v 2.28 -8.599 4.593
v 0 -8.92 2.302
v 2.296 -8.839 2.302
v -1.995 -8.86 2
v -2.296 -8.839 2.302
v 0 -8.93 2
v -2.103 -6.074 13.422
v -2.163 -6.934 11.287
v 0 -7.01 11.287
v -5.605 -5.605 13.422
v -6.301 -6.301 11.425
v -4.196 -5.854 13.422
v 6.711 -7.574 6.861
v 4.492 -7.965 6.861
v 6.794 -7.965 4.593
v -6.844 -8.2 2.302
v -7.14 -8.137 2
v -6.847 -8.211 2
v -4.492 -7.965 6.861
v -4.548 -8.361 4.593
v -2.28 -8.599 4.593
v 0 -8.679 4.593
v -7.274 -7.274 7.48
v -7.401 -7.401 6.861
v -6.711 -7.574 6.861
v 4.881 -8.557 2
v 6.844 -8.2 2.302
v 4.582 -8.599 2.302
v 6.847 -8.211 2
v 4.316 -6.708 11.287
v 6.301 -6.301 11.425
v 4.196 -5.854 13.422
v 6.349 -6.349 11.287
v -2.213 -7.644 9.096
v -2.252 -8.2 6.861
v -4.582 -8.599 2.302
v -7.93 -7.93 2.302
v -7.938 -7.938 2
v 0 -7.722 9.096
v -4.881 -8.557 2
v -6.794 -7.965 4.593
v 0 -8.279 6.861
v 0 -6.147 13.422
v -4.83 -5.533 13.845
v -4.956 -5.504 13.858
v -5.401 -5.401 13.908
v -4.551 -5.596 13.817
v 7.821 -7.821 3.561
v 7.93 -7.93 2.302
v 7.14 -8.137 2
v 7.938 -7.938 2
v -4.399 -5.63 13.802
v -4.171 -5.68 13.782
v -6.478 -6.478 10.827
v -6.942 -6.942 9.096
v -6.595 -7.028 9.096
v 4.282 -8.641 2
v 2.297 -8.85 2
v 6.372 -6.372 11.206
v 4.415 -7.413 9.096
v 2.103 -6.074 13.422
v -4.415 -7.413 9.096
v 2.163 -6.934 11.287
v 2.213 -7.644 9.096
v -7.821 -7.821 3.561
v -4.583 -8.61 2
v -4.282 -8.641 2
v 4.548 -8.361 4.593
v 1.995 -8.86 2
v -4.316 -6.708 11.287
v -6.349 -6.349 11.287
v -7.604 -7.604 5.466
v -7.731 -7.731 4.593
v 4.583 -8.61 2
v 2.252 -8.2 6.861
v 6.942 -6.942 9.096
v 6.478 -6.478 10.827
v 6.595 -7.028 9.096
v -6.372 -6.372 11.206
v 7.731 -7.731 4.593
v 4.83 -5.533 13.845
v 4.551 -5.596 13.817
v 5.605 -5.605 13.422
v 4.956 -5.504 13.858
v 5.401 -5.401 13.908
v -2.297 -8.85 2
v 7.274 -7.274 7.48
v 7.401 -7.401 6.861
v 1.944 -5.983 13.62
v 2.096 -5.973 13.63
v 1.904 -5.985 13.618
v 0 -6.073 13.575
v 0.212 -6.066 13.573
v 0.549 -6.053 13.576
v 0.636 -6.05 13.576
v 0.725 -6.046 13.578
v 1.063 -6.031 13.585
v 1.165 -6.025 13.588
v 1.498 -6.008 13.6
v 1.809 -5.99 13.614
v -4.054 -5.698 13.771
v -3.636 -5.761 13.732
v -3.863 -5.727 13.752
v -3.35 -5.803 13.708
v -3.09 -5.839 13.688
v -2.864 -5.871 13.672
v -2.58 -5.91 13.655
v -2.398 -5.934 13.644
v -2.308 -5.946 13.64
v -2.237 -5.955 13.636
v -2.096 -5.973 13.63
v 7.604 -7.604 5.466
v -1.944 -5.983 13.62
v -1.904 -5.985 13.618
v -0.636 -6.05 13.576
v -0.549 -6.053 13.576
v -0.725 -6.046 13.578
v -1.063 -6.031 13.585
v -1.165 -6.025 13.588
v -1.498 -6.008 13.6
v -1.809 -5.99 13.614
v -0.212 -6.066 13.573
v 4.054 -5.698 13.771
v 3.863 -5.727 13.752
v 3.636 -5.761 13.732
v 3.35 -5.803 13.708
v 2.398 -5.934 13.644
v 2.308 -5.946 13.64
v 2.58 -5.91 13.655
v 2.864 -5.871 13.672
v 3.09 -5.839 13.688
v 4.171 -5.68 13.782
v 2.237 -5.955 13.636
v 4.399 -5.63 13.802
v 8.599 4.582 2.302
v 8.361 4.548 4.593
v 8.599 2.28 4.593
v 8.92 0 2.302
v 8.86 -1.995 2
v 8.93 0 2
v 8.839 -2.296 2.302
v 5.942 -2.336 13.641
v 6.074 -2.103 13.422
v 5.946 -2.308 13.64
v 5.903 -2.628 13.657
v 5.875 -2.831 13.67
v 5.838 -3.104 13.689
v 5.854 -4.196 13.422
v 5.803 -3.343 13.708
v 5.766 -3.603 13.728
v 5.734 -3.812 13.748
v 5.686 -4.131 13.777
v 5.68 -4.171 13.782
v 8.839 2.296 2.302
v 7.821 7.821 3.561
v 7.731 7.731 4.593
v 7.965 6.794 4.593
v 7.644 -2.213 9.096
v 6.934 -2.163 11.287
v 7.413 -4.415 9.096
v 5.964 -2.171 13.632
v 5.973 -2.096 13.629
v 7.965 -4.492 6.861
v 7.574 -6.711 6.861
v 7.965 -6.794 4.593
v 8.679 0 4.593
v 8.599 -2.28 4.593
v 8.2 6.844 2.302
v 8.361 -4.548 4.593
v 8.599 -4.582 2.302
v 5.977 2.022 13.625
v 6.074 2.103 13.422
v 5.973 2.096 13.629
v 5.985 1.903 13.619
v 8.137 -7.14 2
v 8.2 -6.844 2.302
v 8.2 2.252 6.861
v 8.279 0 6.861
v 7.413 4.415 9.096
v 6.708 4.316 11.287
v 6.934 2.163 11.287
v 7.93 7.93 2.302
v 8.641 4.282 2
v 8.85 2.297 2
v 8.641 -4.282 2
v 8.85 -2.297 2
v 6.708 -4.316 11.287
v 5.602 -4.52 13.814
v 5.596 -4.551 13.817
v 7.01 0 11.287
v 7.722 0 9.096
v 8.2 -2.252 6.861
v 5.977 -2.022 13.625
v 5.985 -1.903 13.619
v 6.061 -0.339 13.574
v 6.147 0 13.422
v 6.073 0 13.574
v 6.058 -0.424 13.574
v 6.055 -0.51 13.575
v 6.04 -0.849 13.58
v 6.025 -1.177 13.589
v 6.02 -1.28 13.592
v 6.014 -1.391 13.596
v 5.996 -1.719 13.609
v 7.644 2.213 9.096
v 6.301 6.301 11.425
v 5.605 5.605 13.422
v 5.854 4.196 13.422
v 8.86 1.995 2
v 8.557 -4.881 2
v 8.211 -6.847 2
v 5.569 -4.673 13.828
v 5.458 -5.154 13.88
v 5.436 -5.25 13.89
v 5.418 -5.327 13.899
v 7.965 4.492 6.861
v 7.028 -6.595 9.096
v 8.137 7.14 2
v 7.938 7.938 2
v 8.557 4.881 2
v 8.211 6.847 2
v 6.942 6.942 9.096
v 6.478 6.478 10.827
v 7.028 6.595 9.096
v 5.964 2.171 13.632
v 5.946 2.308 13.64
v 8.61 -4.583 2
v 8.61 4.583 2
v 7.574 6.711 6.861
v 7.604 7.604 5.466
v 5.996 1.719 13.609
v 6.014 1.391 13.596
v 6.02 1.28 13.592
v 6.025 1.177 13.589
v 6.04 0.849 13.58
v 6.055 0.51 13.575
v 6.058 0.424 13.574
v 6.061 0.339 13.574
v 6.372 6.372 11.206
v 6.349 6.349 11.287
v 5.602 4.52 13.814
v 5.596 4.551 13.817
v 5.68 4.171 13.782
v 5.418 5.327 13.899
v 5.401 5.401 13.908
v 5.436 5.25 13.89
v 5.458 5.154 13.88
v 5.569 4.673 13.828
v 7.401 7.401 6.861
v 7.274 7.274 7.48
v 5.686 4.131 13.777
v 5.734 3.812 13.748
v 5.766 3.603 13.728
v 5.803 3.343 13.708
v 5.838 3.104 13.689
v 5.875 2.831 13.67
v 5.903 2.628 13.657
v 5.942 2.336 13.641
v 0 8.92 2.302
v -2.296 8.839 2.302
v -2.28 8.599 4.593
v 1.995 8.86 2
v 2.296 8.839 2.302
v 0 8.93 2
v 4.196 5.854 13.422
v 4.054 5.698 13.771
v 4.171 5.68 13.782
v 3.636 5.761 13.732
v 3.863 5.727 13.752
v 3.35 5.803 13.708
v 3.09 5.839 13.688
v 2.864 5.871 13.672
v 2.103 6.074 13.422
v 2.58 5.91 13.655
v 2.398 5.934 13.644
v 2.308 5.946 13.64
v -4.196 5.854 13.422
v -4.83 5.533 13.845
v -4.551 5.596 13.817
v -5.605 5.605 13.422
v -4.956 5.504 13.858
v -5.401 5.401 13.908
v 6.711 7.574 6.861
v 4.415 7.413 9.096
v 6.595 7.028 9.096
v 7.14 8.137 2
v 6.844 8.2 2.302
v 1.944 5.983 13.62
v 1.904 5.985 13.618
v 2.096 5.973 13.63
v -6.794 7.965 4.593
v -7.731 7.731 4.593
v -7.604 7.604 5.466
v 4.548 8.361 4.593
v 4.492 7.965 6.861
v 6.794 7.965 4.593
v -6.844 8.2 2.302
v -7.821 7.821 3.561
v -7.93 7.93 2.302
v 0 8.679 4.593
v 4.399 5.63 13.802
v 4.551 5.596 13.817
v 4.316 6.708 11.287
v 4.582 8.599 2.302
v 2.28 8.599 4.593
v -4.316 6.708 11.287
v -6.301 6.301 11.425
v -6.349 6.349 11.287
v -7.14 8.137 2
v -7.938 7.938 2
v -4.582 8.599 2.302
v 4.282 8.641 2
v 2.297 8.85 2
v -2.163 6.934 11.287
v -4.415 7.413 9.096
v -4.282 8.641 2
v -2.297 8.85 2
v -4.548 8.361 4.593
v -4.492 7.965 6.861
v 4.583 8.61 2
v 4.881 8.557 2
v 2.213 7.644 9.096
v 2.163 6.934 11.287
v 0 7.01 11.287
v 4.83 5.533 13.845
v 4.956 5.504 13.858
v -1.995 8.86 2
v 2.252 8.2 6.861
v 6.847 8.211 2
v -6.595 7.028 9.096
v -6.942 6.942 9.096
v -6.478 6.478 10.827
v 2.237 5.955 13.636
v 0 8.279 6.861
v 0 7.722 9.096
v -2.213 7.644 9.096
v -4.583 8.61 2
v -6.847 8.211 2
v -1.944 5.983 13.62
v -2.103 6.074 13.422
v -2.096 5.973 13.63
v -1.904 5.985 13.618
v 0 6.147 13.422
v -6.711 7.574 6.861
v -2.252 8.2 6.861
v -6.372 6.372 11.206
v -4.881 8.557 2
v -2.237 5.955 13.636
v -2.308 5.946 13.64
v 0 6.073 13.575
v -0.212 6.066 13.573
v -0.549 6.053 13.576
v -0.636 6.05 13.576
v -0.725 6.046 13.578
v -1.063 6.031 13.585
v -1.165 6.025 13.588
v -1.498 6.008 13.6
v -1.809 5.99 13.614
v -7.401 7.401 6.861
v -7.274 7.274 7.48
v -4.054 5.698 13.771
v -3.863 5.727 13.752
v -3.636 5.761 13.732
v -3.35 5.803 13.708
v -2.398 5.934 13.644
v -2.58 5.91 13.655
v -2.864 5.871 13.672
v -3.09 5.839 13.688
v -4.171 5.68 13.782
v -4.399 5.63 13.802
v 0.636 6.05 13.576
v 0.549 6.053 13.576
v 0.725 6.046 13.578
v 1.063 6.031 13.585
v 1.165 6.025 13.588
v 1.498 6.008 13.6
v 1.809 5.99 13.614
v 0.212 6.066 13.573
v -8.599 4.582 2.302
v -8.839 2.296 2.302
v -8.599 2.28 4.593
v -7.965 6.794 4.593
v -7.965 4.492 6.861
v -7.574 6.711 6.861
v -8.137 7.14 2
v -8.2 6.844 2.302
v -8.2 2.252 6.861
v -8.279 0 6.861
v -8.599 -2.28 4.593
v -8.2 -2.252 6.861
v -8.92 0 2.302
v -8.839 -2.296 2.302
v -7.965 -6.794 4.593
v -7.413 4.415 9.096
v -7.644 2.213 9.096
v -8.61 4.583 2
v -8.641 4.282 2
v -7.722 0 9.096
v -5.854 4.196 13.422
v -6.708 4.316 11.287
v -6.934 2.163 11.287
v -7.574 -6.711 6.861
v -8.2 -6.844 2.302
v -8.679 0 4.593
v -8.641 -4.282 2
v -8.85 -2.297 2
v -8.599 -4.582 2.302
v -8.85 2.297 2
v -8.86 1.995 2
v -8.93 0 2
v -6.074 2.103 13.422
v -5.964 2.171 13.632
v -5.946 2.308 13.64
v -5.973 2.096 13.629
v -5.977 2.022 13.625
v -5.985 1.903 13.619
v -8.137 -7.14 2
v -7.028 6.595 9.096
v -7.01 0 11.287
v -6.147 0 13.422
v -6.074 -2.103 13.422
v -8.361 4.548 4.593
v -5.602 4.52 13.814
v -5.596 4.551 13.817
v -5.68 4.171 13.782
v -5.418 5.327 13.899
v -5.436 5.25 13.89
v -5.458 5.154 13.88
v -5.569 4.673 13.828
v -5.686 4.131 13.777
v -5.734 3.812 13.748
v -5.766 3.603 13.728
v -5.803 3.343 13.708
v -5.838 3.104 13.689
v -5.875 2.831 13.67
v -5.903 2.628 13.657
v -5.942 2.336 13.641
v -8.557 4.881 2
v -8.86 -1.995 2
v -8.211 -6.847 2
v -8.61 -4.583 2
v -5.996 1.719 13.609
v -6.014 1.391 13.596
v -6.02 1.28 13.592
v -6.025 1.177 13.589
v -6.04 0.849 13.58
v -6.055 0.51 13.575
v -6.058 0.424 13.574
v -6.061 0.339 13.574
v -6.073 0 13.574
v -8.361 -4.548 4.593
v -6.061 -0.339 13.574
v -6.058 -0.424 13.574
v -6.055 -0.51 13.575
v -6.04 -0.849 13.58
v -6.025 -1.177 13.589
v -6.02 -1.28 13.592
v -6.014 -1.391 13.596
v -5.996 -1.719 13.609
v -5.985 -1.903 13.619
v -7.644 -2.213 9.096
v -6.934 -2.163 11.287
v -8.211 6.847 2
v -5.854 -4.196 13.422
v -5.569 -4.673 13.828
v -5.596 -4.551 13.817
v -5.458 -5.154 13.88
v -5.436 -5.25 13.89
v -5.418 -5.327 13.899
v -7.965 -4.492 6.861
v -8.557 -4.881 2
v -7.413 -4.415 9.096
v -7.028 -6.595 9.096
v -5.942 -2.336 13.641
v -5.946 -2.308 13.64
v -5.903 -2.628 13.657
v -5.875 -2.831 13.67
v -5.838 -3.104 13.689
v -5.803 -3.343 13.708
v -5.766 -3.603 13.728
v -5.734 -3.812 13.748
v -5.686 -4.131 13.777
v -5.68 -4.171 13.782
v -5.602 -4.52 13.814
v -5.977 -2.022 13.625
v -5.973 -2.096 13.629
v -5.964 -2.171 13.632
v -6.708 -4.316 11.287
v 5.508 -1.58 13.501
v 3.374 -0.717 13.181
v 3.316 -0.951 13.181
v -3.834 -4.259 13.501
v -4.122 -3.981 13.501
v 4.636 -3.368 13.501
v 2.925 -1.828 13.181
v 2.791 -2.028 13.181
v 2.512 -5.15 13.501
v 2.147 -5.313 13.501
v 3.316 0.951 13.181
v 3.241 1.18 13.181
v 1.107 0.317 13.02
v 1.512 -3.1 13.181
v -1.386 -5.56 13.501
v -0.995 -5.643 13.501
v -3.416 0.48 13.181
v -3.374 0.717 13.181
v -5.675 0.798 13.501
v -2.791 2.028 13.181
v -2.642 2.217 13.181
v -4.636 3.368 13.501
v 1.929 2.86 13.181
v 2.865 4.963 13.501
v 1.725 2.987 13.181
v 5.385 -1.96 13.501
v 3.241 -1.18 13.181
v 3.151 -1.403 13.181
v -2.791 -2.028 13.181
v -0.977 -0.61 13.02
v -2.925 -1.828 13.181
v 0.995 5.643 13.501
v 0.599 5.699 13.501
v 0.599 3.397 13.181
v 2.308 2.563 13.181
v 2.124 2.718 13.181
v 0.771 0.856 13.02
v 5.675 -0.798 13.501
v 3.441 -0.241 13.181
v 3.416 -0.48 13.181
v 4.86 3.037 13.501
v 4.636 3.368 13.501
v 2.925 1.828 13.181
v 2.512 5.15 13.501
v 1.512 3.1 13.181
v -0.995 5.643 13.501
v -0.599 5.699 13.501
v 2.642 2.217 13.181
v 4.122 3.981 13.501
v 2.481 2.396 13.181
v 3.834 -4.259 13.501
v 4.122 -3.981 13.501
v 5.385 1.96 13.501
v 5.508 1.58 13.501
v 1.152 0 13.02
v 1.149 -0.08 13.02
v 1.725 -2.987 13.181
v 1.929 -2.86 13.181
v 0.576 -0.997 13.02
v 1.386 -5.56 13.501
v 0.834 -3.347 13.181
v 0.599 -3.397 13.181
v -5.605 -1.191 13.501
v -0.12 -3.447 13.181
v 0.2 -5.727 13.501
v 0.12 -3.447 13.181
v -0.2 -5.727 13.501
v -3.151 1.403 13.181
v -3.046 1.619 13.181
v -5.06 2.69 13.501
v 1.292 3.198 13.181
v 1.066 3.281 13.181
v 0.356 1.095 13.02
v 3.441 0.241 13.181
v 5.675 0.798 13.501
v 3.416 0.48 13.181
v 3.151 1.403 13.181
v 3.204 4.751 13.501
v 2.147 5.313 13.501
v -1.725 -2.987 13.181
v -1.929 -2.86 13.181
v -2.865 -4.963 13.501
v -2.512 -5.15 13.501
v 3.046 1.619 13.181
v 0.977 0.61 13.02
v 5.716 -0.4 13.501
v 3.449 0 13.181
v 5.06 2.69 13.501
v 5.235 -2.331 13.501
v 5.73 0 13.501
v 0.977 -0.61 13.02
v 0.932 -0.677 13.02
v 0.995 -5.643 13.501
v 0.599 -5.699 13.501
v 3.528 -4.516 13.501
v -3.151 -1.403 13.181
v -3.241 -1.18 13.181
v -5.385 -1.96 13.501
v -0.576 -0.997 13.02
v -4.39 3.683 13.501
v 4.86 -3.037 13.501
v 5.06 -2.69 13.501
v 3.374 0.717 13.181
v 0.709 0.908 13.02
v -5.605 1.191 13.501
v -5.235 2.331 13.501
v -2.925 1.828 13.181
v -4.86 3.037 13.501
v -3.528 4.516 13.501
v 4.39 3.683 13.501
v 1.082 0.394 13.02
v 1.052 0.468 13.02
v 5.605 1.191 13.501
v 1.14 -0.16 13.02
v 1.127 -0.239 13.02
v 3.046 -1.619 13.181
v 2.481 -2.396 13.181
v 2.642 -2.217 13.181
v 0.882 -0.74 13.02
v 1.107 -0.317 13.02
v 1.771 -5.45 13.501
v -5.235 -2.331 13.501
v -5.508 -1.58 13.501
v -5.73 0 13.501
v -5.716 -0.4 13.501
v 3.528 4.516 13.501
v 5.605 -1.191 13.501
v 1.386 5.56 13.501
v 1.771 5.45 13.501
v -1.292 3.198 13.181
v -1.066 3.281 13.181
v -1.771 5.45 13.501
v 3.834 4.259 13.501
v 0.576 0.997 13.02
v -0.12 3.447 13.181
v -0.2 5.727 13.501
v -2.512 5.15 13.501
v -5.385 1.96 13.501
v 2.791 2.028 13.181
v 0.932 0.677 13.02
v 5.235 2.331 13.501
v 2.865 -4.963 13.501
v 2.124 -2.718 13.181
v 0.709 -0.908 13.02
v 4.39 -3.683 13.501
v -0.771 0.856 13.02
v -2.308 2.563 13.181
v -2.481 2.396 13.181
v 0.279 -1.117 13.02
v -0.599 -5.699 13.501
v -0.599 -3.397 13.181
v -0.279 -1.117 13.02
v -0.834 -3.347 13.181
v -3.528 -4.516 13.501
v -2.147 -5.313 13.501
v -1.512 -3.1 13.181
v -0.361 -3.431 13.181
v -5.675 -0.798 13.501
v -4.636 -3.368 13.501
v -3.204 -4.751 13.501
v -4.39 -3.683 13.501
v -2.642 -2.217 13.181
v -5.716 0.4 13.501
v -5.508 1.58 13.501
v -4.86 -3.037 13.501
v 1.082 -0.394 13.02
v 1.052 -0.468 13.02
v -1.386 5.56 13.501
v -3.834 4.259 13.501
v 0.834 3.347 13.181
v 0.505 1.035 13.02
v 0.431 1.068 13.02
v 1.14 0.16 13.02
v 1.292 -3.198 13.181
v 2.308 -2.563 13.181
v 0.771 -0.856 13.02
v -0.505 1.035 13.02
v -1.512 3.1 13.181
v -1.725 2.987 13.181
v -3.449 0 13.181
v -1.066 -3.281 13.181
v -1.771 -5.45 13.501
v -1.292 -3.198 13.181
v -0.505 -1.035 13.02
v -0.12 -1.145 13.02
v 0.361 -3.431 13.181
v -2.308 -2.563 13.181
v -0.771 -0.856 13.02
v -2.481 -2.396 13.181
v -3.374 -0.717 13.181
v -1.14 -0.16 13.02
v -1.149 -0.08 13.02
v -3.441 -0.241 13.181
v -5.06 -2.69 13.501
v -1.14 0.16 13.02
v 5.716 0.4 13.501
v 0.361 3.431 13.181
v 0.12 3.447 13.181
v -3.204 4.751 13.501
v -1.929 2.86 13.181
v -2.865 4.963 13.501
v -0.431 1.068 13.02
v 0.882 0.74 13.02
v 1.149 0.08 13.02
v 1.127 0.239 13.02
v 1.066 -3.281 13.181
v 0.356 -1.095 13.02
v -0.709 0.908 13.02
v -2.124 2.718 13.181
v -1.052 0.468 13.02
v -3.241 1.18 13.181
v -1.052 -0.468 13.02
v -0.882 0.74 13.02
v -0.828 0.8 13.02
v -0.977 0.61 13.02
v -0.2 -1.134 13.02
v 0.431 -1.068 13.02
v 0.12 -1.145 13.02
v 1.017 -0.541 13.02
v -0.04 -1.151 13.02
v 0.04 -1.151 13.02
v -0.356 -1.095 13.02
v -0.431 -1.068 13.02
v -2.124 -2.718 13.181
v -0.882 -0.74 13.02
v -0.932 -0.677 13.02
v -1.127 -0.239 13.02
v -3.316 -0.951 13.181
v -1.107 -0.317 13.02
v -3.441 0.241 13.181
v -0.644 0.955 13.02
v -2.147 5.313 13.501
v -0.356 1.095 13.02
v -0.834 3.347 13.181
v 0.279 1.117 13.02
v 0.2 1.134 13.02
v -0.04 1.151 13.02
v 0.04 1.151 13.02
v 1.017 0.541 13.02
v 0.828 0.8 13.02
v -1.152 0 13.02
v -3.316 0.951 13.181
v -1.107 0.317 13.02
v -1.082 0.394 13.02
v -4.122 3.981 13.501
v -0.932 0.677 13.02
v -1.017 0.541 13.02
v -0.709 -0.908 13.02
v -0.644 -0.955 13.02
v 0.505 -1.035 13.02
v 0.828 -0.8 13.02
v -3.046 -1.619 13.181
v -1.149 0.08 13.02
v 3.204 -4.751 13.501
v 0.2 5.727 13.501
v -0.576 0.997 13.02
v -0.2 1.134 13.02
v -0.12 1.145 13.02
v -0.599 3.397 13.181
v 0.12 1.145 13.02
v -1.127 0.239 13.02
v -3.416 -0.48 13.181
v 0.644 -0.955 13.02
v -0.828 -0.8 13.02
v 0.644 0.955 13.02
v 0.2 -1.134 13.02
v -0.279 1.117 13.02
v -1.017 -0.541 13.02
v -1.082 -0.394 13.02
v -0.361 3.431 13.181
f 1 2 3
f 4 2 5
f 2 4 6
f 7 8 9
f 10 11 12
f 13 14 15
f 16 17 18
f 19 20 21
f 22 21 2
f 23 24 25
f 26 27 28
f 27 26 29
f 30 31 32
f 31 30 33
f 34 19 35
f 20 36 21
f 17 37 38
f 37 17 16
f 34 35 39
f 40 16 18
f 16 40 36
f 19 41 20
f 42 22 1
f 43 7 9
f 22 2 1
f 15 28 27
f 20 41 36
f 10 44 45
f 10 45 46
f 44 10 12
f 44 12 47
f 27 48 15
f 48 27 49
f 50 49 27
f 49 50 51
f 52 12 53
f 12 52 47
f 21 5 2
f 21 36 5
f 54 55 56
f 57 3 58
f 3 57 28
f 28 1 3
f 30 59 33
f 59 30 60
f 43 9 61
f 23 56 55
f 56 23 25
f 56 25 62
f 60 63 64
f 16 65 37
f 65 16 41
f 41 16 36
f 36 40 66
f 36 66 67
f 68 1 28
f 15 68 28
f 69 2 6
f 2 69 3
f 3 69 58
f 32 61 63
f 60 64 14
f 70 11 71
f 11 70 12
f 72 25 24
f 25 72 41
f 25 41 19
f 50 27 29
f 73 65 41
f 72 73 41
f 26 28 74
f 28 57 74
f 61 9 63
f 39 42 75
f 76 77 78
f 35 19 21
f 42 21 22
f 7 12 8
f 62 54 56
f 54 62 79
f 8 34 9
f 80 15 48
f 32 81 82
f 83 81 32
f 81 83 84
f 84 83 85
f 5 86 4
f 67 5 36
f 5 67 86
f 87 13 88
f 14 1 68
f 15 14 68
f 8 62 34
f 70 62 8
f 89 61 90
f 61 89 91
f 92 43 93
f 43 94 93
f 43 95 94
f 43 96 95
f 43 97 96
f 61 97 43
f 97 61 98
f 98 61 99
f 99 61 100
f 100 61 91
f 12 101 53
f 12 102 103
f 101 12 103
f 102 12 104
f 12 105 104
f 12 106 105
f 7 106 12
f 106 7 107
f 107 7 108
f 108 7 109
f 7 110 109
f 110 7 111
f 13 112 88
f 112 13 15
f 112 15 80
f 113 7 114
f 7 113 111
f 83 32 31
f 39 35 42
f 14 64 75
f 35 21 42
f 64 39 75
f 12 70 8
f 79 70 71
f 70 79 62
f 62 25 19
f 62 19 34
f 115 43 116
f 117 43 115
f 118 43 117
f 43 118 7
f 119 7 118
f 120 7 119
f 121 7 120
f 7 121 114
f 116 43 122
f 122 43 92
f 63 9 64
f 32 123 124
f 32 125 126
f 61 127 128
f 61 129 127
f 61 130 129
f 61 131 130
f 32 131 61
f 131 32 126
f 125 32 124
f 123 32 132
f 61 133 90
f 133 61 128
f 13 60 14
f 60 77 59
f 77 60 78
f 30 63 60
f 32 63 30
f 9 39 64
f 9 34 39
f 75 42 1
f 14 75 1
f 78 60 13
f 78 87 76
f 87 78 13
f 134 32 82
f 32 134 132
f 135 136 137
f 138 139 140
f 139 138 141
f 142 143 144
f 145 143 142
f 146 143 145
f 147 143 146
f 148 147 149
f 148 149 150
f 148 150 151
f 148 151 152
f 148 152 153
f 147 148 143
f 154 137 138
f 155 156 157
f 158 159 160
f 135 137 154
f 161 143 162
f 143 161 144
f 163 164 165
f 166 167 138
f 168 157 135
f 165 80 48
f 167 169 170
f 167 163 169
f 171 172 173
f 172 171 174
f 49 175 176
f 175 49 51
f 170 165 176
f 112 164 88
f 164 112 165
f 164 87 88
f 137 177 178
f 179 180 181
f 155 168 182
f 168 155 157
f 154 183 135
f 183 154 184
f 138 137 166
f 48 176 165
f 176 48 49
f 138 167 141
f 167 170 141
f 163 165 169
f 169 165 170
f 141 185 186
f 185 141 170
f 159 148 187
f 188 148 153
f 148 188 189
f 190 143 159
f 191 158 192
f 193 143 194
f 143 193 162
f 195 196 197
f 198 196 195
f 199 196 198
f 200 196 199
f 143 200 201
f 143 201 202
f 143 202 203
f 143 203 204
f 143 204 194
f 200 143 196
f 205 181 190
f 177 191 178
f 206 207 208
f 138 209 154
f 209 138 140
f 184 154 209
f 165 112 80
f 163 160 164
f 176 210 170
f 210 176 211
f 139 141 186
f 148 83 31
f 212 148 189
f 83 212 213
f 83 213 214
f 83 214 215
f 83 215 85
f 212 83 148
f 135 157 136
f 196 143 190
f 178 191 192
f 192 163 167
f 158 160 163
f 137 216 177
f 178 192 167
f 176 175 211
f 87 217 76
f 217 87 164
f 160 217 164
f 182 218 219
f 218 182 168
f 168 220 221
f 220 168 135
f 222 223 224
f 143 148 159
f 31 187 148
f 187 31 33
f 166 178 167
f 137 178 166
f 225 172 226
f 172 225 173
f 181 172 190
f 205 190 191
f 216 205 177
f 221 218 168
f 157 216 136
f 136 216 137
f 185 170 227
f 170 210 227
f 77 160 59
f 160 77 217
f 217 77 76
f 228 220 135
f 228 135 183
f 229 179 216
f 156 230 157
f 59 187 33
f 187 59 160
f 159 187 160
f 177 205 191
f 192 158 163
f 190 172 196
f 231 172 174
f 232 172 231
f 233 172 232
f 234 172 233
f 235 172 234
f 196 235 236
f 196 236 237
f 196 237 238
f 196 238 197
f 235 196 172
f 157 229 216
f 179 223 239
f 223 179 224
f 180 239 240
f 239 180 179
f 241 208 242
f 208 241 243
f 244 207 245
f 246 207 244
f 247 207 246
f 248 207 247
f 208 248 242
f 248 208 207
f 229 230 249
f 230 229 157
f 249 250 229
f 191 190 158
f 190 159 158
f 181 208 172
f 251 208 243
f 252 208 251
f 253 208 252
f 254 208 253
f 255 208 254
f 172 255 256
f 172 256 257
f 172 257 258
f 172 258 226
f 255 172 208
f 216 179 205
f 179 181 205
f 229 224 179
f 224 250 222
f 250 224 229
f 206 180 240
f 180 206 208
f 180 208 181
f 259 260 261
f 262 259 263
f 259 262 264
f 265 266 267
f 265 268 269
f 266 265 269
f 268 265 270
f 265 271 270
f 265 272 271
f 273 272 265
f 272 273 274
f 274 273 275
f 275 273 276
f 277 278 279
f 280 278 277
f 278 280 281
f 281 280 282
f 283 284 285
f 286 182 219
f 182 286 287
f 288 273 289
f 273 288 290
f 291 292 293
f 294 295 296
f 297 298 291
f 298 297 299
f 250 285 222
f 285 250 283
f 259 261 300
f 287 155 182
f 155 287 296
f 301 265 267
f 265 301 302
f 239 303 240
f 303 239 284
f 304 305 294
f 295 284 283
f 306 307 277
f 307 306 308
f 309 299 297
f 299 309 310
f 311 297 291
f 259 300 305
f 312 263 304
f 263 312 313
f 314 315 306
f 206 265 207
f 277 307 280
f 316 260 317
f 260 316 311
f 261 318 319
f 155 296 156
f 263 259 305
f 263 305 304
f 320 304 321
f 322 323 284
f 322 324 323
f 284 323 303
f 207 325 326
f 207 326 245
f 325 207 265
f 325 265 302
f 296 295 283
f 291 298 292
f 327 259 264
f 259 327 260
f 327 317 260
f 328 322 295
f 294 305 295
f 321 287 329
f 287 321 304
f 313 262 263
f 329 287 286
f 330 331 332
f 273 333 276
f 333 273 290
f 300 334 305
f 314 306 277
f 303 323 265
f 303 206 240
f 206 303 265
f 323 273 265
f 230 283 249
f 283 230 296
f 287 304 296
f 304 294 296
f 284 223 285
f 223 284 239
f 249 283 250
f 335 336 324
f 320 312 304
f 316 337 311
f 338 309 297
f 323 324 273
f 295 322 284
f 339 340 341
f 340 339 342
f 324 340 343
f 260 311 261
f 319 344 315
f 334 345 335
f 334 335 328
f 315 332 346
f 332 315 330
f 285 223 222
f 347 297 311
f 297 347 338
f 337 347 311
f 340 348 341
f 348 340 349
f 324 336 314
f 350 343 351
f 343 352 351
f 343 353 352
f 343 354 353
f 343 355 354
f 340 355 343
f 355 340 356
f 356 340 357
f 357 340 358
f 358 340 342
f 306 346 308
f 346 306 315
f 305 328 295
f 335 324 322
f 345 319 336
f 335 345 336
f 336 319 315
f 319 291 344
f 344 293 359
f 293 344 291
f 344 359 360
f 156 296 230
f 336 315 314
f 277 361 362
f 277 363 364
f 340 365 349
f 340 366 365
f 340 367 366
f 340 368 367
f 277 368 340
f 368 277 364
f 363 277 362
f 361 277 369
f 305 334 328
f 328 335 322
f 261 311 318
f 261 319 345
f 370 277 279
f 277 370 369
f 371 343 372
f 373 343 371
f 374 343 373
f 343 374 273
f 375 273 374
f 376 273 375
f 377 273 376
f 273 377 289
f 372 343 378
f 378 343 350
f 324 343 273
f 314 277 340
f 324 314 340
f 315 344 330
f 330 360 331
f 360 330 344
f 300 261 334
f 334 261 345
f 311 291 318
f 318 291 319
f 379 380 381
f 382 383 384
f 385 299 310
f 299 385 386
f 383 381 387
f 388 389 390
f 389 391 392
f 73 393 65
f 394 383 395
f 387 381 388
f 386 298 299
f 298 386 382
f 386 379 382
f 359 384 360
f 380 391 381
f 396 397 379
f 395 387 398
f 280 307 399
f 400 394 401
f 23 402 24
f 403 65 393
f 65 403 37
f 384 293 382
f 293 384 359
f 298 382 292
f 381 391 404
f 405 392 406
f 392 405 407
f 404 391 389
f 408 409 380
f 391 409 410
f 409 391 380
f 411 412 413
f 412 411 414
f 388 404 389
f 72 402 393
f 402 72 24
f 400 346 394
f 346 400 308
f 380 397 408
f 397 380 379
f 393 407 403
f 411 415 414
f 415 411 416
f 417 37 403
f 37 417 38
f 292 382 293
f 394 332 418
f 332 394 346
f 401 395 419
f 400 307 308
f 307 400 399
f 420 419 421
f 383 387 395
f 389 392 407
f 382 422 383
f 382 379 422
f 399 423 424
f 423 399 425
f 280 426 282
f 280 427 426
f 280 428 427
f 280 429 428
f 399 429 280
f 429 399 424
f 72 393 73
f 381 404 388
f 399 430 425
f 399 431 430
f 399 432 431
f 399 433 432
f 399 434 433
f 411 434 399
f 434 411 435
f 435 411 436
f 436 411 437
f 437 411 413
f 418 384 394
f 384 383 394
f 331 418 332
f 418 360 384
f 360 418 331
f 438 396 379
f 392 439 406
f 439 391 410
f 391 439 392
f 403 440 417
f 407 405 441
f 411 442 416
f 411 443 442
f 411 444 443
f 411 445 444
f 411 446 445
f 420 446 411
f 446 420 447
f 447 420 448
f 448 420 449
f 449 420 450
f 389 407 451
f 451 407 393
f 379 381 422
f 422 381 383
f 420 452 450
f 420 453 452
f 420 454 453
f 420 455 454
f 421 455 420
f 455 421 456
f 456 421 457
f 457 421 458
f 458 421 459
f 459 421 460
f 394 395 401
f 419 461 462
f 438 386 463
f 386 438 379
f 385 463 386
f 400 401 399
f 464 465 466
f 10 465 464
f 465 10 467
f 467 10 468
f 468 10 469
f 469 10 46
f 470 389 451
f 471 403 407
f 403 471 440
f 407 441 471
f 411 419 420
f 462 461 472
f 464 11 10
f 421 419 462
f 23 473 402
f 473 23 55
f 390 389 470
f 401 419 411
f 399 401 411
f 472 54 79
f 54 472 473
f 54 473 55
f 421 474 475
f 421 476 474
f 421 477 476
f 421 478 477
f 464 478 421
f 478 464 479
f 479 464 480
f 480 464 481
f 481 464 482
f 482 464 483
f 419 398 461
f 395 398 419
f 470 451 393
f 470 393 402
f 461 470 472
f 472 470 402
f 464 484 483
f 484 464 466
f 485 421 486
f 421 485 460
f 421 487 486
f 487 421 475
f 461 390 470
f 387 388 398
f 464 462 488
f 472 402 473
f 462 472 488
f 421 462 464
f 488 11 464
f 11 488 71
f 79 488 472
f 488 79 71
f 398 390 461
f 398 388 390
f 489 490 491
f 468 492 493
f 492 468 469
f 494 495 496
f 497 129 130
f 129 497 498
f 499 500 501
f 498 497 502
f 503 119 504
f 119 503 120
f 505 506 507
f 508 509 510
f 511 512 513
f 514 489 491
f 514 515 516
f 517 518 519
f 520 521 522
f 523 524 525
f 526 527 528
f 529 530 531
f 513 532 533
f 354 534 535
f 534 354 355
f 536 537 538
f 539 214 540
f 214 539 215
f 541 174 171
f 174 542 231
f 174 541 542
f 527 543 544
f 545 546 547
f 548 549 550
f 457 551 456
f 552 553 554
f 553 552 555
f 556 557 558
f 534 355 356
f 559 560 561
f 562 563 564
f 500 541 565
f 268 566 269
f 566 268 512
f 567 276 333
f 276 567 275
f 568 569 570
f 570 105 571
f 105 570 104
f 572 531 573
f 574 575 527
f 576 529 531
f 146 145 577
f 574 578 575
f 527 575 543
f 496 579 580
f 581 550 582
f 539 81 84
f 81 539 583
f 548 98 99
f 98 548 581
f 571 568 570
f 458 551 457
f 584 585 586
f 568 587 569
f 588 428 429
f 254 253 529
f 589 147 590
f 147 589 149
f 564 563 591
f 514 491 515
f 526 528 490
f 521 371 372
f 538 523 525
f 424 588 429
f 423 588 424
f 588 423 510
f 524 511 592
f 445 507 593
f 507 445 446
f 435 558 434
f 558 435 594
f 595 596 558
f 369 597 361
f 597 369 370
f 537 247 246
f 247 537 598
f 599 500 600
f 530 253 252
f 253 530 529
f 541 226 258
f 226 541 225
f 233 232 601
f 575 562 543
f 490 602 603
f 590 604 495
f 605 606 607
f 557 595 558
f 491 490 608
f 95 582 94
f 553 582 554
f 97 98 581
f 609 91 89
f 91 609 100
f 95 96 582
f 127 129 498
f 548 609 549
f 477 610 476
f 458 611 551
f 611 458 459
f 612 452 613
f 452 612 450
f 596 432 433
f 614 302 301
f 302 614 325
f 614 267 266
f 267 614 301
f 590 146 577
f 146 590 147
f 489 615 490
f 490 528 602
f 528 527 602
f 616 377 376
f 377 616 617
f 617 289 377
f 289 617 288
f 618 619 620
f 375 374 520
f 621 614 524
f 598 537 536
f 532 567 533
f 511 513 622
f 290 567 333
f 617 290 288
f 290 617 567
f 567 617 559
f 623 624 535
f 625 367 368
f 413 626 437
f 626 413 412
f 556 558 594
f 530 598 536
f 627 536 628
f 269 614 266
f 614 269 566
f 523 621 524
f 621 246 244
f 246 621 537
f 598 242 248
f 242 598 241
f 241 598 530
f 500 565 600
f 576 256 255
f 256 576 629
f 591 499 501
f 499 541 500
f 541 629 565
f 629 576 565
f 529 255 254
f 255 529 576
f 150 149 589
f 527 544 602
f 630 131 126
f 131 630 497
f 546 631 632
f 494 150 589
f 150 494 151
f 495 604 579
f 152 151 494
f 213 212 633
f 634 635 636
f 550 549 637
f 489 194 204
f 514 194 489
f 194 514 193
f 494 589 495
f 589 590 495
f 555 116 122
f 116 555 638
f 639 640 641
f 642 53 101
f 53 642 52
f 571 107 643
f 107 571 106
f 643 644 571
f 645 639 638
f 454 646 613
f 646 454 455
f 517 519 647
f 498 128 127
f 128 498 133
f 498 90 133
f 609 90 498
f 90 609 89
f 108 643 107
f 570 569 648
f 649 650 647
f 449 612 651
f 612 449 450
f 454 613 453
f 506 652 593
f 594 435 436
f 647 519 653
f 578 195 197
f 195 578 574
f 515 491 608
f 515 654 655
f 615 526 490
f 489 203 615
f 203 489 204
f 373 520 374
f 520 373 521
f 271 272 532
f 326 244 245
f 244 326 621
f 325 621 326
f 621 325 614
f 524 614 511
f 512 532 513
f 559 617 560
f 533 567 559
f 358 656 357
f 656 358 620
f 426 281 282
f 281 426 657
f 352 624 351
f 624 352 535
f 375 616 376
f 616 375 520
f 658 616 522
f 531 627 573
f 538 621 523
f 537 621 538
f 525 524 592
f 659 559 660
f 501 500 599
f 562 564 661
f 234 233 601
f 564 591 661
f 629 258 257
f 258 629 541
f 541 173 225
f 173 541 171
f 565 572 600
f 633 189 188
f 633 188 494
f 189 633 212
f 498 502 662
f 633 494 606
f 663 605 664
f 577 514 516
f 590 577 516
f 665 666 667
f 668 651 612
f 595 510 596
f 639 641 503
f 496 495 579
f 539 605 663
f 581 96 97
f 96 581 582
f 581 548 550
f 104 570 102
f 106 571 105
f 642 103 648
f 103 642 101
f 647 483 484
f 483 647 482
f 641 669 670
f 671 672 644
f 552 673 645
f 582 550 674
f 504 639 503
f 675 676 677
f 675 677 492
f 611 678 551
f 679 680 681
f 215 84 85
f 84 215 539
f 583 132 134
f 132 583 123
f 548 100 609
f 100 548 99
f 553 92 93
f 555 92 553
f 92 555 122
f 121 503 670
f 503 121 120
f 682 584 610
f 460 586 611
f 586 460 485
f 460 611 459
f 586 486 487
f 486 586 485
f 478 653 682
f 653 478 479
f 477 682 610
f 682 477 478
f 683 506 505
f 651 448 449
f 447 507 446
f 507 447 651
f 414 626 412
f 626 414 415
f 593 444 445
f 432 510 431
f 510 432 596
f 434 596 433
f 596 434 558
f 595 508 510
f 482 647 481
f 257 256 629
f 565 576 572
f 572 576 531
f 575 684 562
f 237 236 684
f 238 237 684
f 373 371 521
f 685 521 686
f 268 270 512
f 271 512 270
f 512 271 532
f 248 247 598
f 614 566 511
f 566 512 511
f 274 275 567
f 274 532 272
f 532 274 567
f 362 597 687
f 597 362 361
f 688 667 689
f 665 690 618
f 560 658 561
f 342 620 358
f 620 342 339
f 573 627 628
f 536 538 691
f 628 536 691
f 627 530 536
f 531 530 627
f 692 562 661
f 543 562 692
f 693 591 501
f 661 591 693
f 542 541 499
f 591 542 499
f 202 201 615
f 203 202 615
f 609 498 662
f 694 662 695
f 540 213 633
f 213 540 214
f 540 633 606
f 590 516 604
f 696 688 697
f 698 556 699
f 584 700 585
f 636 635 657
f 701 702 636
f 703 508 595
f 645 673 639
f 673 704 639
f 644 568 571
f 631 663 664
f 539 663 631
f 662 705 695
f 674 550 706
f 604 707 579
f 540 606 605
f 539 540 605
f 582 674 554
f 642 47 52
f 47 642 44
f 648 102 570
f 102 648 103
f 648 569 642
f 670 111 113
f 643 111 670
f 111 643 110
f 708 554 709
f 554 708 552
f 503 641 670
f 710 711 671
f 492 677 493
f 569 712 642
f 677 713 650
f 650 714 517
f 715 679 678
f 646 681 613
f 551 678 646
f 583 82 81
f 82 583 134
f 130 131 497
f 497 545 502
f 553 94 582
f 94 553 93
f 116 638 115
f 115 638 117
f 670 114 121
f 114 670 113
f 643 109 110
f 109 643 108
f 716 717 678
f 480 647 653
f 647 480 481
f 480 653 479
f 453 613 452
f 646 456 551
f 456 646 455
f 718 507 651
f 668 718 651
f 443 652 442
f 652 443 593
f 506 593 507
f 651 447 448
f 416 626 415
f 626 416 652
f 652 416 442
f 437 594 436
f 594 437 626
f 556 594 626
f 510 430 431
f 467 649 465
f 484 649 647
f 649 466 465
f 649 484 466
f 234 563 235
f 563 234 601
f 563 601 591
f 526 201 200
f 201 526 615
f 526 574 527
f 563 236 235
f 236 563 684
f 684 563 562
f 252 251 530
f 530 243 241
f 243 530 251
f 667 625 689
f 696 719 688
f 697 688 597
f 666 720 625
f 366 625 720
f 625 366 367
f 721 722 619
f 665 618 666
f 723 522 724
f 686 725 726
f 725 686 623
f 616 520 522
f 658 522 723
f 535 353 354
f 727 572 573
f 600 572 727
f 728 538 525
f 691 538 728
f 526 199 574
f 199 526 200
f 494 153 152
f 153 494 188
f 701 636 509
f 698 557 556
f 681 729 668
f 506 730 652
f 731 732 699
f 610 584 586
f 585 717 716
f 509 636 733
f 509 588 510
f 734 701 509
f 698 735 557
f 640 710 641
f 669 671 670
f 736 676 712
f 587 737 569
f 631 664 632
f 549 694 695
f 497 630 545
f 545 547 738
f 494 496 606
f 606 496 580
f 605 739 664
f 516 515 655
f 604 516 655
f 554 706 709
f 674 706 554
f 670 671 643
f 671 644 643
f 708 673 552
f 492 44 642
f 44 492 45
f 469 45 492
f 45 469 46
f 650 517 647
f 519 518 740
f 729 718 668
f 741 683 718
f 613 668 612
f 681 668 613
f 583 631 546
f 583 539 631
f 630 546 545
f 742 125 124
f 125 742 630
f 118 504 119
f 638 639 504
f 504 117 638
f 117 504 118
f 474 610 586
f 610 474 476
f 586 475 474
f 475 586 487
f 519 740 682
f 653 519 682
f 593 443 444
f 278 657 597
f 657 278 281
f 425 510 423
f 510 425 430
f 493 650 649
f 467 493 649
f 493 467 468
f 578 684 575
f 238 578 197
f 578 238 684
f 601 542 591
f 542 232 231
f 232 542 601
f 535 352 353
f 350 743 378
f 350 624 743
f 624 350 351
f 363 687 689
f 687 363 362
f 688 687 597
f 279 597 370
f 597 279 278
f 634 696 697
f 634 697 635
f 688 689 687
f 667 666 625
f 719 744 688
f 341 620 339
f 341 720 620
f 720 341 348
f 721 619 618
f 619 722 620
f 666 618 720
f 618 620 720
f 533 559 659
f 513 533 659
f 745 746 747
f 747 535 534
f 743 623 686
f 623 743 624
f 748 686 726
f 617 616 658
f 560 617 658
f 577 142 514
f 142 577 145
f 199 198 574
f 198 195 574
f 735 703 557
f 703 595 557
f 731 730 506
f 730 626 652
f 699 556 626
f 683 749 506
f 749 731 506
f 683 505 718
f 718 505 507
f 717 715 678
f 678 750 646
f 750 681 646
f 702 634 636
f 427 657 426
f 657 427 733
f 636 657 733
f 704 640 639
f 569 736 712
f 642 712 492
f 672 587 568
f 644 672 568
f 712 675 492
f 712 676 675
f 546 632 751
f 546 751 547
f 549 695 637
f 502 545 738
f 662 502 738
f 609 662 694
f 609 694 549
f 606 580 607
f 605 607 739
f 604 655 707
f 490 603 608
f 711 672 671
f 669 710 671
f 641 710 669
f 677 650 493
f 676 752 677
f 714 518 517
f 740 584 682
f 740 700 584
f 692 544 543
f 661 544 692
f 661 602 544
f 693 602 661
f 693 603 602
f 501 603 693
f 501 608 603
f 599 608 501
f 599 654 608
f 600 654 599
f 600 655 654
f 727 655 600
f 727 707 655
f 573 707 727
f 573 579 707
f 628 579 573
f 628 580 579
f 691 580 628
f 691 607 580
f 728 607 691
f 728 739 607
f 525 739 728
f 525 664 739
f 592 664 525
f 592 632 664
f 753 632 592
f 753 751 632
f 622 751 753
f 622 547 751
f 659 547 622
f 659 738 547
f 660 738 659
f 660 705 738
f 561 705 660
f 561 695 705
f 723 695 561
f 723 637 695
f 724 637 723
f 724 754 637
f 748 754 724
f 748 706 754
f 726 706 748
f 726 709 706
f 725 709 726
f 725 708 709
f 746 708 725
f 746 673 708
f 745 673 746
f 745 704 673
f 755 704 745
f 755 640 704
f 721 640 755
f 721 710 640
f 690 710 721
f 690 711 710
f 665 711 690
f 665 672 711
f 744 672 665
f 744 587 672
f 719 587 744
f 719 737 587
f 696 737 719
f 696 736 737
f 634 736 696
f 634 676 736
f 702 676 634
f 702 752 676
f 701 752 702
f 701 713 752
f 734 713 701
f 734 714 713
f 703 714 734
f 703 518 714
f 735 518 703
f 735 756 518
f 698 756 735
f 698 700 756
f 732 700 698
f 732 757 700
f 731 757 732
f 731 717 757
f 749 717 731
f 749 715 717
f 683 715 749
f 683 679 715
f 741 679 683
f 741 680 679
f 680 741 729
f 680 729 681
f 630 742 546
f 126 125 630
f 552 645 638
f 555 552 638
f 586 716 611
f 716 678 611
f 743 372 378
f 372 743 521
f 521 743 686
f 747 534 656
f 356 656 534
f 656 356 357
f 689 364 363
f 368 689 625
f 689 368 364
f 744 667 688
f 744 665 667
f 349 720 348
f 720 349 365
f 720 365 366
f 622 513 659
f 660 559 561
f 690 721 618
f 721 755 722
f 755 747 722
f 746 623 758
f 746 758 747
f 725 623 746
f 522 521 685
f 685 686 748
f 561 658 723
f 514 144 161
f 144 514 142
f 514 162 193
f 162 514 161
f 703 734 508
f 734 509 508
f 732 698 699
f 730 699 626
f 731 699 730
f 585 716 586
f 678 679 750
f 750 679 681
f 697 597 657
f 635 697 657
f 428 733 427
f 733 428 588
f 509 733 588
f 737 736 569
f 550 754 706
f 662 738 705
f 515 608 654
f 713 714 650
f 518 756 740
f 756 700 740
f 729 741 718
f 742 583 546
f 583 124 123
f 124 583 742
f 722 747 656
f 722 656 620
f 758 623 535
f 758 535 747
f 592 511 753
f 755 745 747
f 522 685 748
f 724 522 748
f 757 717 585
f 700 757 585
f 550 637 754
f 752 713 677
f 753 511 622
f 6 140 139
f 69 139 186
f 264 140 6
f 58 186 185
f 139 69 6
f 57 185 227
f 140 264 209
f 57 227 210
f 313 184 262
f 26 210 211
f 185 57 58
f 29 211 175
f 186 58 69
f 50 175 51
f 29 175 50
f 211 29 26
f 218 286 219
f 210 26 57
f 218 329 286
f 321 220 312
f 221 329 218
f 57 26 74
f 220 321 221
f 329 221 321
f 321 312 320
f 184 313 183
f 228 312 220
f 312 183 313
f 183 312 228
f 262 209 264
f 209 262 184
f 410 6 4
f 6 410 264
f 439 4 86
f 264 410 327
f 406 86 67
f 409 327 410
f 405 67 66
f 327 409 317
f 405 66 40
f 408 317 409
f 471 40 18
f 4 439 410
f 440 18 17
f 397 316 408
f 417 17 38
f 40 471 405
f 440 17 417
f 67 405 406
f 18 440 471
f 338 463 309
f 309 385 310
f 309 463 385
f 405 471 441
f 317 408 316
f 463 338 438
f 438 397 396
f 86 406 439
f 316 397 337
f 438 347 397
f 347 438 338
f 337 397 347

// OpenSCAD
// SA Row 3
difference() {
     intersection_for(n = [1 : 4]) {
          rotate([0, 0, n * 90]) {
               translate([24, 0, 0])
                    sphere(r = 33, $fn = 90);
          }
     }
     translate([0,0,46]) sphere(r = 33, $fn = 90);
     translate([-33,-33,-64]) cube(66);
}
